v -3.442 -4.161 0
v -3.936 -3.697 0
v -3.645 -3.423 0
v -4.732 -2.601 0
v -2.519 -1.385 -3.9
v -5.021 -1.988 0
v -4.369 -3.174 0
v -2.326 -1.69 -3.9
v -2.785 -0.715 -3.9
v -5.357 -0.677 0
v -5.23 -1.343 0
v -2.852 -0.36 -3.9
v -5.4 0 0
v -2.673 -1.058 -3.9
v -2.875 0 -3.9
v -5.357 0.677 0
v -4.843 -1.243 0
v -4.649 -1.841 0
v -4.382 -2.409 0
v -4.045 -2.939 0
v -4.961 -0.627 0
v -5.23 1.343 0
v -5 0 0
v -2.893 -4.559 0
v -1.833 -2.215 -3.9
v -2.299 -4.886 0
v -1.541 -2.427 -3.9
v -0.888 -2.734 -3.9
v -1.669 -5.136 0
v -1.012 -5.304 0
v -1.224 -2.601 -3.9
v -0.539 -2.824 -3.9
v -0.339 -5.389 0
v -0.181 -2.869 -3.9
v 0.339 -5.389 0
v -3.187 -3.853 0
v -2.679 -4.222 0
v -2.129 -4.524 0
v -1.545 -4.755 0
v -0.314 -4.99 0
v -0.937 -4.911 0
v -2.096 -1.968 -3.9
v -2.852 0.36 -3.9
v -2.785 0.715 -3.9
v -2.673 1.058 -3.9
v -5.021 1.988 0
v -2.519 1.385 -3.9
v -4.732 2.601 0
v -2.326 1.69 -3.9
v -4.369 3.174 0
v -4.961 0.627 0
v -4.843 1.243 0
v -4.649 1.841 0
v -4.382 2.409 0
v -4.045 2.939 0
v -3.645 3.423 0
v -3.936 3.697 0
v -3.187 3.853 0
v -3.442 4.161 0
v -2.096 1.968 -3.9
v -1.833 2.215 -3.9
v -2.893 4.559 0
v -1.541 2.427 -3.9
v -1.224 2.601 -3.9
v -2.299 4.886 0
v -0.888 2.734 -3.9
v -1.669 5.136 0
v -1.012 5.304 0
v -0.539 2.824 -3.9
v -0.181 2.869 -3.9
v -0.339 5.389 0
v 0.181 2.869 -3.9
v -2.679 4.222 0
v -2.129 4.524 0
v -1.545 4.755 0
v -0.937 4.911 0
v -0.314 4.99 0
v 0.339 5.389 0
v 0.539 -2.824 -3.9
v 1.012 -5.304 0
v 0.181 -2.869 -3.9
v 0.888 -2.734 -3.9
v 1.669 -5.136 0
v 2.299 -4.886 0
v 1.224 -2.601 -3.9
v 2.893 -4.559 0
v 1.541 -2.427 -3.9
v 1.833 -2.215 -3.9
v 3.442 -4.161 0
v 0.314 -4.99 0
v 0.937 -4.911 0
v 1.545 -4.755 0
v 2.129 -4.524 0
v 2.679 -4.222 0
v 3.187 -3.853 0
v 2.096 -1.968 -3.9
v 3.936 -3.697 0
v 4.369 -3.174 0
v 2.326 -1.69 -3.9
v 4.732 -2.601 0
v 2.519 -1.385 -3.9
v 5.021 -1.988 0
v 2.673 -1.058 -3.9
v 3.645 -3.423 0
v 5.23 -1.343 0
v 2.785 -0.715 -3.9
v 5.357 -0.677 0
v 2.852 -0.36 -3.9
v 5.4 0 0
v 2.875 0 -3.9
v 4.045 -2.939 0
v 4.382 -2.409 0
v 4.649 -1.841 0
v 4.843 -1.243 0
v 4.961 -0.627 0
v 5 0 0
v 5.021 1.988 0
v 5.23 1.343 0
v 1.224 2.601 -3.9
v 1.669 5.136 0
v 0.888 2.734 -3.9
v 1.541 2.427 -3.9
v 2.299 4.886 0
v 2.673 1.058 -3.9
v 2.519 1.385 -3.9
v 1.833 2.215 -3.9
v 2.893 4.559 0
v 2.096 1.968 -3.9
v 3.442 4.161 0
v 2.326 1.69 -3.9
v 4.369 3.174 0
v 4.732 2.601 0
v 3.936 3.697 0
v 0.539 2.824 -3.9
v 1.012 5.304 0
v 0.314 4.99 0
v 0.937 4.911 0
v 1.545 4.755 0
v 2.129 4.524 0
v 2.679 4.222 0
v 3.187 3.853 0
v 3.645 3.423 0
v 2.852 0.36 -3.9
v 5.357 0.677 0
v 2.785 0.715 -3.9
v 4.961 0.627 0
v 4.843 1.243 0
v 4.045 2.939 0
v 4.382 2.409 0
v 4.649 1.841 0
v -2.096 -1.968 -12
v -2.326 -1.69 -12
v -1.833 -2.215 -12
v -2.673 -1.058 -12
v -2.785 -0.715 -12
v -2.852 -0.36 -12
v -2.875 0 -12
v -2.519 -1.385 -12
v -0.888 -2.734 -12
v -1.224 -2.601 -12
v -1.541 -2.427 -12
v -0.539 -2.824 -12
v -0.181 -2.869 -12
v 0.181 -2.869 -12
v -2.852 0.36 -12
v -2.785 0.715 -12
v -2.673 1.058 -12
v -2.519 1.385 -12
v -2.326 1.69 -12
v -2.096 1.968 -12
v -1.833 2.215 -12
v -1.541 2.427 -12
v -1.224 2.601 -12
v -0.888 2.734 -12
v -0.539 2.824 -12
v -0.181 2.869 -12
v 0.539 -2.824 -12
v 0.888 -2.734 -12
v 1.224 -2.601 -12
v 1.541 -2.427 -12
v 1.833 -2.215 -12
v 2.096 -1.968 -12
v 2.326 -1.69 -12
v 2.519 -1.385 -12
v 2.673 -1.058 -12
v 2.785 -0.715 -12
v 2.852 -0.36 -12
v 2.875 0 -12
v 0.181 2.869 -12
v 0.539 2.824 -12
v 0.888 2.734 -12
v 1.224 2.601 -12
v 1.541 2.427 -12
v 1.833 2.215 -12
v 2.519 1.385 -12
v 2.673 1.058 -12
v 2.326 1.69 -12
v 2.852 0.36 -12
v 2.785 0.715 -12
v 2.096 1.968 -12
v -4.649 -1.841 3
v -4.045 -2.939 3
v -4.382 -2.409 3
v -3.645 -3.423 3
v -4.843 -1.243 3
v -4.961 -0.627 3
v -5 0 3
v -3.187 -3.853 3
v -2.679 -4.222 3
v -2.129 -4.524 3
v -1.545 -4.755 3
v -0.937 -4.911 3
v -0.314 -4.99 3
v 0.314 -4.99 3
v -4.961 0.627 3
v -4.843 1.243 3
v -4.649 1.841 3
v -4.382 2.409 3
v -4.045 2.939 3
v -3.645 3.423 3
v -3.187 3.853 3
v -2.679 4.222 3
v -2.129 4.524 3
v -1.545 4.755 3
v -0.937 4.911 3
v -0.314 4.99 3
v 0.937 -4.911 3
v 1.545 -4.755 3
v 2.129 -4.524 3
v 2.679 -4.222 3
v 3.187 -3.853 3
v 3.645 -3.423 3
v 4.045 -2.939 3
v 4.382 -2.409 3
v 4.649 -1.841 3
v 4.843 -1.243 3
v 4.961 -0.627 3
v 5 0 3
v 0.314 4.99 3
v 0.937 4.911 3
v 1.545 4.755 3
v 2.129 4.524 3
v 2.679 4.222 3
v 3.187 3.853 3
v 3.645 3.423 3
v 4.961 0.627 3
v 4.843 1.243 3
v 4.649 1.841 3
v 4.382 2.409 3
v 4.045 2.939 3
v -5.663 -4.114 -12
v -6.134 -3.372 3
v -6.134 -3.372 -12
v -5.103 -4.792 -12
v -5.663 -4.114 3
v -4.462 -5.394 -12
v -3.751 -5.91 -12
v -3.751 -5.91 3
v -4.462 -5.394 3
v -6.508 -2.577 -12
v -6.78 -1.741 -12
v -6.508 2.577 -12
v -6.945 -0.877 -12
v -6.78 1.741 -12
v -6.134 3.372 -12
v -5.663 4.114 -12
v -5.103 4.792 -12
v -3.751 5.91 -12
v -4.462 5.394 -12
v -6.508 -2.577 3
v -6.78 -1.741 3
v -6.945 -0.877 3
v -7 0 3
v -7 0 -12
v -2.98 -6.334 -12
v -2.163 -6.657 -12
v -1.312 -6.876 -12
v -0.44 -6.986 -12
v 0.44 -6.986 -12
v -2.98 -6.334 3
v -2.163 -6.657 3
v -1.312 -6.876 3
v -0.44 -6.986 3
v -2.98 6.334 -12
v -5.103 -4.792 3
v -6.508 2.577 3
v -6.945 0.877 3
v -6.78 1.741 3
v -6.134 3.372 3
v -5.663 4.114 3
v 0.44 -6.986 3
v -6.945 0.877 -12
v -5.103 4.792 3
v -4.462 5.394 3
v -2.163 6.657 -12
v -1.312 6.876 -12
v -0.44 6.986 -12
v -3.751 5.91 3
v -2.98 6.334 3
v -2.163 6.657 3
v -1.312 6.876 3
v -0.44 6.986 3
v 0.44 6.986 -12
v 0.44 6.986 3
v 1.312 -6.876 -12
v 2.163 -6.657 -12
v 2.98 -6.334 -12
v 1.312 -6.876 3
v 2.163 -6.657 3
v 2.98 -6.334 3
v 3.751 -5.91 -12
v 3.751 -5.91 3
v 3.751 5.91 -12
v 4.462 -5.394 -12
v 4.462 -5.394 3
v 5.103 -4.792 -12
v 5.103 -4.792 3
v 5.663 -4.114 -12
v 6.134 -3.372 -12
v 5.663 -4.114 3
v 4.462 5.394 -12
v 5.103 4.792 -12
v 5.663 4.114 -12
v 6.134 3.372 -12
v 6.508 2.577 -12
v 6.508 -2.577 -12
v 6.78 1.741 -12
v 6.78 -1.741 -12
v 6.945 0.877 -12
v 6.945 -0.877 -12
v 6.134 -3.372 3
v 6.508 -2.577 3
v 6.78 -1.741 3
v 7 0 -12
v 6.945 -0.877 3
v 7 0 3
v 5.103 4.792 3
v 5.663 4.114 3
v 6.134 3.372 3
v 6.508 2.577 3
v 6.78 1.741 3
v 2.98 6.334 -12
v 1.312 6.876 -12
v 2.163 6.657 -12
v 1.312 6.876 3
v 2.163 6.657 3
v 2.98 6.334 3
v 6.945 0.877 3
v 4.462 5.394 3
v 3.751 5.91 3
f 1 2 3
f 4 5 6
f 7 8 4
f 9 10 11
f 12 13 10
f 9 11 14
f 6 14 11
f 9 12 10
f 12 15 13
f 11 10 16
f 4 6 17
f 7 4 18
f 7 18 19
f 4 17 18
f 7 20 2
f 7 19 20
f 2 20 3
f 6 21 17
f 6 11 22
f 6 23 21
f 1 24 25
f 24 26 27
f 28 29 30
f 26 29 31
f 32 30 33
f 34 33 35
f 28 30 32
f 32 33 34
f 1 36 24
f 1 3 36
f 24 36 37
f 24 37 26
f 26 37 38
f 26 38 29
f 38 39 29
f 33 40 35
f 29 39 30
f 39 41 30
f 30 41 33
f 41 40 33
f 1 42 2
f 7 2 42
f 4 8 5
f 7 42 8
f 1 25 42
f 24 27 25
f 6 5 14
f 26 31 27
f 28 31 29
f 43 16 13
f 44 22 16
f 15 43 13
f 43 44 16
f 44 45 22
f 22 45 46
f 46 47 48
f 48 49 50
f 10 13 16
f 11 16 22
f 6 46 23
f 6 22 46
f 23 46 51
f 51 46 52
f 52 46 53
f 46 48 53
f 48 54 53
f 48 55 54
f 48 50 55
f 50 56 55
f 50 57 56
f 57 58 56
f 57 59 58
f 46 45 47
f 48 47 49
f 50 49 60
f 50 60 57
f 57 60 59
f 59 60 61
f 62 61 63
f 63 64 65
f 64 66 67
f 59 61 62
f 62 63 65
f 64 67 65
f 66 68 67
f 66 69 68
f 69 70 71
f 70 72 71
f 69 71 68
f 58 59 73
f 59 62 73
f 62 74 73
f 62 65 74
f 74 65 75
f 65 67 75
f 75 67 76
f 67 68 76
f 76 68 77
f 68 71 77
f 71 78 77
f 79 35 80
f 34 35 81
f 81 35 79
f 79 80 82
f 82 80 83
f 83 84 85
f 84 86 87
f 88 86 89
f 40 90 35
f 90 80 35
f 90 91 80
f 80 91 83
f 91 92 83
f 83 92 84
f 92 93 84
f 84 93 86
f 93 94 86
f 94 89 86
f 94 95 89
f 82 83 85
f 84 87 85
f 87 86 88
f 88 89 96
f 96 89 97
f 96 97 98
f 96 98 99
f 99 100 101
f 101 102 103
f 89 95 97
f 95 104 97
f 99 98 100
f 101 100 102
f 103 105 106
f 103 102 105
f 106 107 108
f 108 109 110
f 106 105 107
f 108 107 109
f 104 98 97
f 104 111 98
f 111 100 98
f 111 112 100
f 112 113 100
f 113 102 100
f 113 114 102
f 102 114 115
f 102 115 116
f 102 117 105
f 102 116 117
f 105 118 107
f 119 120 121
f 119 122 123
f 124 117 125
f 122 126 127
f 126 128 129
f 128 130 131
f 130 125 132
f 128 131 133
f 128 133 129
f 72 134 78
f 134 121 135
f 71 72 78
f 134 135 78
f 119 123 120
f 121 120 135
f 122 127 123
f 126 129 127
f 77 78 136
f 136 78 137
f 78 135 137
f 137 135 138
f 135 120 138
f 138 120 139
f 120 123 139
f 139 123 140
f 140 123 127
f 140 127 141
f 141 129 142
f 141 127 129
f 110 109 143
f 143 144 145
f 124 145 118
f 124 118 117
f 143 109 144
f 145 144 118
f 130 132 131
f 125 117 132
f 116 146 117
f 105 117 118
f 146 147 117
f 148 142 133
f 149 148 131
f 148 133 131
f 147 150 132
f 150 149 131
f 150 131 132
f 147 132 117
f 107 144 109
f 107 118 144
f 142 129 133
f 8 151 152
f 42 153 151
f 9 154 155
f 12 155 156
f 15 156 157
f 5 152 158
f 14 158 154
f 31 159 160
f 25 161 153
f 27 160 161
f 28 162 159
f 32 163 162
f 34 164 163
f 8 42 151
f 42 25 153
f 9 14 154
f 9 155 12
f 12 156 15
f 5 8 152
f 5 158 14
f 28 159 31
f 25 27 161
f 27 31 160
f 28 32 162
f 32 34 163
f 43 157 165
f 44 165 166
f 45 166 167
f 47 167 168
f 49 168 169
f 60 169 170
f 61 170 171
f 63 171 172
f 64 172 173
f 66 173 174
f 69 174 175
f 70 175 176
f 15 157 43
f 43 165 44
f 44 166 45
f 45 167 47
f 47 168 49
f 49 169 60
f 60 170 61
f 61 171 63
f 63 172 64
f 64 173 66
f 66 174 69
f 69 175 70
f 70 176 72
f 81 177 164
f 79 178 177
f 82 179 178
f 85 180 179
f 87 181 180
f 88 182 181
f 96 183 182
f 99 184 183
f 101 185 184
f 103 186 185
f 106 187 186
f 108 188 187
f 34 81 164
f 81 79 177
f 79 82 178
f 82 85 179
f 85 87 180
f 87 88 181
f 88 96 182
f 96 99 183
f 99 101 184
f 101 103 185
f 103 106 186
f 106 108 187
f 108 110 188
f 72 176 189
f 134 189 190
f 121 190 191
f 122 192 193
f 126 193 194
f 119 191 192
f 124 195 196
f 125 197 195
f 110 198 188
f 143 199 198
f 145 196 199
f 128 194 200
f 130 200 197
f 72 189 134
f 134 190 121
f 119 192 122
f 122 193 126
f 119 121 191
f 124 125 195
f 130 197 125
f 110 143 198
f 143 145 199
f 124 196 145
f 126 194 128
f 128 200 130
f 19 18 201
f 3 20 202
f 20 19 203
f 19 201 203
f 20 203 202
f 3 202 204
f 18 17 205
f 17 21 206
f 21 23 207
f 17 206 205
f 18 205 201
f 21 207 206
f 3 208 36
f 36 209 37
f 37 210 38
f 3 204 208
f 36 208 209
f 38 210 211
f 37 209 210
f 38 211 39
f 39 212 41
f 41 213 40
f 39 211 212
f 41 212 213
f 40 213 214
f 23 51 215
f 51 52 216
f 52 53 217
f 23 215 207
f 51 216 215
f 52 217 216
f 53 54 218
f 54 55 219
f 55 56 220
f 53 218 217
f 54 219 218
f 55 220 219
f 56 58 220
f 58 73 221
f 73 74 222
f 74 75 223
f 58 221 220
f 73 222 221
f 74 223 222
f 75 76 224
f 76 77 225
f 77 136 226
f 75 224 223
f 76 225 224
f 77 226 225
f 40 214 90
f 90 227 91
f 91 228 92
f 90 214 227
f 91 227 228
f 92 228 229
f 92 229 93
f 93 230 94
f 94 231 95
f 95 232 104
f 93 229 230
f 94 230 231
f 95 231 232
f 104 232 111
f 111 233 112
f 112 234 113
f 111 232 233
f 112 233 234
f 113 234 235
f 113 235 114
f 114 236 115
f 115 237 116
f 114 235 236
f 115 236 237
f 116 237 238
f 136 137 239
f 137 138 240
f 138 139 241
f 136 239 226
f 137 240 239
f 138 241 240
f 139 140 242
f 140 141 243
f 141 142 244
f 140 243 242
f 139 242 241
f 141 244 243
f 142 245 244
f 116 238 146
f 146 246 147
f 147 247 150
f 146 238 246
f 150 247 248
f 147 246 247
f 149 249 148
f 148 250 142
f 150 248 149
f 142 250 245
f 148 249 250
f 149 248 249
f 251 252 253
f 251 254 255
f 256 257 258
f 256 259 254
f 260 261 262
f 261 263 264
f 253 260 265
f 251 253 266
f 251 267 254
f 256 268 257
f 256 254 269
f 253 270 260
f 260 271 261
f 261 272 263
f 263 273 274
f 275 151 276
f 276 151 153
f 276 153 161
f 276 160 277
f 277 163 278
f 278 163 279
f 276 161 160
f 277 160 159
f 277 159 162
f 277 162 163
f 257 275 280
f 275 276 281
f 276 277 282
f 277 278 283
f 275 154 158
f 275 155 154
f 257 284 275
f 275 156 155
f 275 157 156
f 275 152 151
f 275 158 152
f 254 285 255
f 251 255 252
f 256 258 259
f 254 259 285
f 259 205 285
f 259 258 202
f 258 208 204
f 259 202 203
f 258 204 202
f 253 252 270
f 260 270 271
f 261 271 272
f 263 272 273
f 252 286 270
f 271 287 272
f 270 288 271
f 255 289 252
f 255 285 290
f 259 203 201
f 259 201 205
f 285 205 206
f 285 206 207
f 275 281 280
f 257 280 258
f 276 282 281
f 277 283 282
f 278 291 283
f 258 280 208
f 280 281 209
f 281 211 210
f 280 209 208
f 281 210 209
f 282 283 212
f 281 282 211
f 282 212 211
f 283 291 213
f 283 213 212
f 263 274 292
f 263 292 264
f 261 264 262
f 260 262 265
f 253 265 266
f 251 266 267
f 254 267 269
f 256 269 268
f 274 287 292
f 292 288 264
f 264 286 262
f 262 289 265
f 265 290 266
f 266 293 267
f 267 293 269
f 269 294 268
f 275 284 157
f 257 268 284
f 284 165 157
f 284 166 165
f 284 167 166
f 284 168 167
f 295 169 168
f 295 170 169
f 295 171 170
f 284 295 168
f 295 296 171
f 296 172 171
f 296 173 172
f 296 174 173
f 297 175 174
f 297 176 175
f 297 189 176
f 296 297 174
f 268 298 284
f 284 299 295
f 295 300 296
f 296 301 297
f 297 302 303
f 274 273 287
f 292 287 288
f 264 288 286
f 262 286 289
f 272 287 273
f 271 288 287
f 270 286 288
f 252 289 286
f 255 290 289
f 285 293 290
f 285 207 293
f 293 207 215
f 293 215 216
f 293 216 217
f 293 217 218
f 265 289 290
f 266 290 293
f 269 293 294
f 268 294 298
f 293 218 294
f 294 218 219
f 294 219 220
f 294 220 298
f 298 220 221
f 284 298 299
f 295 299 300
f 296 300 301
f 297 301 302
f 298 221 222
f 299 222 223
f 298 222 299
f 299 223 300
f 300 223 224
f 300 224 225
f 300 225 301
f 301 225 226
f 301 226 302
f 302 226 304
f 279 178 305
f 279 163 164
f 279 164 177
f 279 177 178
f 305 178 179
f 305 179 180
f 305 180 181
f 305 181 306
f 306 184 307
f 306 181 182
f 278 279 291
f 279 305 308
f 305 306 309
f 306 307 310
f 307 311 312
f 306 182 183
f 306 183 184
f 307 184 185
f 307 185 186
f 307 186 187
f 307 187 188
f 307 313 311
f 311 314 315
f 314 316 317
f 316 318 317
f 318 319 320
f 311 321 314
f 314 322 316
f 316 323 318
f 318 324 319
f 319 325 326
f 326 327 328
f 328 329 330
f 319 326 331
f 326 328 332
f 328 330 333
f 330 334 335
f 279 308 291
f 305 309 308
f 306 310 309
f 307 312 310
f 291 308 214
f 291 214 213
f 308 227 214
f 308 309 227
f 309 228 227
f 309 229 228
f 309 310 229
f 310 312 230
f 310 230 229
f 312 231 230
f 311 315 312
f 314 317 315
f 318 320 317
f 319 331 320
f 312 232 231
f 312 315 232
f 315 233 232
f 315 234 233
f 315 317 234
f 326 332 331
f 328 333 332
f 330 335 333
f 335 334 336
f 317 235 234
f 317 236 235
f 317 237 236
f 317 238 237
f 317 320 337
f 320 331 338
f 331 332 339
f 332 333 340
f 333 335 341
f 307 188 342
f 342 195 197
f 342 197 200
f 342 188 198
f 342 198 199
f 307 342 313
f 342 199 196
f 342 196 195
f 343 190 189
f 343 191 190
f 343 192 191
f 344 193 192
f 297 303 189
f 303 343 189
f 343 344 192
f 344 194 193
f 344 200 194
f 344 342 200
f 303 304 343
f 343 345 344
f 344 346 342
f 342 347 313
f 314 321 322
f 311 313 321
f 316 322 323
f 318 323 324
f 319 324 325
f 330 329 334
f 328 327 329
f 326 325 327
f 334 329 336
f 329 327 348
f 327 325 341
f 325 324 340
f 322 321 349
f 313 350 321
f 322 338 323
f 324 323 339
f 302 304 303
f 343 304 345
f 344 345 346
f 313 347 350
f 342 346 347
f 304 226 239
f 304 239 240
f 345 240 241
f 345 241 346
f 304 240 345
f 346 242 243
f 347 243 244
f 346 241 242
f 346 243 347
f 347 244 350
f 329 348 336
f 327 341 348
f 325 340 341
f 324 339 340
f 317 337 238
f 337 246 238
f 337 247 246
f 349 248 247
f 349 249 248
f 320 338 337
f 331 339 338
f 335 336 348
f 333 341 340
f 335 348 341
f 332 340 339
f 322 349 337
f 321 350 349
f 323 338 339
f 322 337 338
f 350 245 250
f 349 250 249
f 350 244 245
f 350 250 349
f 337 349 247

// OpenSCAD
$fn = 50;

difference() {
	union() {
		translate(v = [0, 0, -12.0]) {
			cylinder(h = 15, r = 7.0);
		}
	}
	union() {
		translate(v = [0, 0, 0]) {
			rotate(a = [0, 0, 0]) {
				difference() {
					union() {
						translate(v = [0, 0, -15.0]) {
							cylinder(h = 15, r = 2.6);
						}
						translate(v = [0, 0, -3.9]) {
							cylinder(h = 3.9, r1 = 2.875, r2 = 5.4);
						}
						translate(v = [0, 0, -15.0]) {
							cylinder(h = 15, r = 2.875);
						}
						translate(v = [0, 0, -15.0]) {
							cylinder(h = 15, r = 2.6);
						}
					}
					union();
				}
			}
		}
		#cylinder(h = 3, r = 5.0);
	}
}
